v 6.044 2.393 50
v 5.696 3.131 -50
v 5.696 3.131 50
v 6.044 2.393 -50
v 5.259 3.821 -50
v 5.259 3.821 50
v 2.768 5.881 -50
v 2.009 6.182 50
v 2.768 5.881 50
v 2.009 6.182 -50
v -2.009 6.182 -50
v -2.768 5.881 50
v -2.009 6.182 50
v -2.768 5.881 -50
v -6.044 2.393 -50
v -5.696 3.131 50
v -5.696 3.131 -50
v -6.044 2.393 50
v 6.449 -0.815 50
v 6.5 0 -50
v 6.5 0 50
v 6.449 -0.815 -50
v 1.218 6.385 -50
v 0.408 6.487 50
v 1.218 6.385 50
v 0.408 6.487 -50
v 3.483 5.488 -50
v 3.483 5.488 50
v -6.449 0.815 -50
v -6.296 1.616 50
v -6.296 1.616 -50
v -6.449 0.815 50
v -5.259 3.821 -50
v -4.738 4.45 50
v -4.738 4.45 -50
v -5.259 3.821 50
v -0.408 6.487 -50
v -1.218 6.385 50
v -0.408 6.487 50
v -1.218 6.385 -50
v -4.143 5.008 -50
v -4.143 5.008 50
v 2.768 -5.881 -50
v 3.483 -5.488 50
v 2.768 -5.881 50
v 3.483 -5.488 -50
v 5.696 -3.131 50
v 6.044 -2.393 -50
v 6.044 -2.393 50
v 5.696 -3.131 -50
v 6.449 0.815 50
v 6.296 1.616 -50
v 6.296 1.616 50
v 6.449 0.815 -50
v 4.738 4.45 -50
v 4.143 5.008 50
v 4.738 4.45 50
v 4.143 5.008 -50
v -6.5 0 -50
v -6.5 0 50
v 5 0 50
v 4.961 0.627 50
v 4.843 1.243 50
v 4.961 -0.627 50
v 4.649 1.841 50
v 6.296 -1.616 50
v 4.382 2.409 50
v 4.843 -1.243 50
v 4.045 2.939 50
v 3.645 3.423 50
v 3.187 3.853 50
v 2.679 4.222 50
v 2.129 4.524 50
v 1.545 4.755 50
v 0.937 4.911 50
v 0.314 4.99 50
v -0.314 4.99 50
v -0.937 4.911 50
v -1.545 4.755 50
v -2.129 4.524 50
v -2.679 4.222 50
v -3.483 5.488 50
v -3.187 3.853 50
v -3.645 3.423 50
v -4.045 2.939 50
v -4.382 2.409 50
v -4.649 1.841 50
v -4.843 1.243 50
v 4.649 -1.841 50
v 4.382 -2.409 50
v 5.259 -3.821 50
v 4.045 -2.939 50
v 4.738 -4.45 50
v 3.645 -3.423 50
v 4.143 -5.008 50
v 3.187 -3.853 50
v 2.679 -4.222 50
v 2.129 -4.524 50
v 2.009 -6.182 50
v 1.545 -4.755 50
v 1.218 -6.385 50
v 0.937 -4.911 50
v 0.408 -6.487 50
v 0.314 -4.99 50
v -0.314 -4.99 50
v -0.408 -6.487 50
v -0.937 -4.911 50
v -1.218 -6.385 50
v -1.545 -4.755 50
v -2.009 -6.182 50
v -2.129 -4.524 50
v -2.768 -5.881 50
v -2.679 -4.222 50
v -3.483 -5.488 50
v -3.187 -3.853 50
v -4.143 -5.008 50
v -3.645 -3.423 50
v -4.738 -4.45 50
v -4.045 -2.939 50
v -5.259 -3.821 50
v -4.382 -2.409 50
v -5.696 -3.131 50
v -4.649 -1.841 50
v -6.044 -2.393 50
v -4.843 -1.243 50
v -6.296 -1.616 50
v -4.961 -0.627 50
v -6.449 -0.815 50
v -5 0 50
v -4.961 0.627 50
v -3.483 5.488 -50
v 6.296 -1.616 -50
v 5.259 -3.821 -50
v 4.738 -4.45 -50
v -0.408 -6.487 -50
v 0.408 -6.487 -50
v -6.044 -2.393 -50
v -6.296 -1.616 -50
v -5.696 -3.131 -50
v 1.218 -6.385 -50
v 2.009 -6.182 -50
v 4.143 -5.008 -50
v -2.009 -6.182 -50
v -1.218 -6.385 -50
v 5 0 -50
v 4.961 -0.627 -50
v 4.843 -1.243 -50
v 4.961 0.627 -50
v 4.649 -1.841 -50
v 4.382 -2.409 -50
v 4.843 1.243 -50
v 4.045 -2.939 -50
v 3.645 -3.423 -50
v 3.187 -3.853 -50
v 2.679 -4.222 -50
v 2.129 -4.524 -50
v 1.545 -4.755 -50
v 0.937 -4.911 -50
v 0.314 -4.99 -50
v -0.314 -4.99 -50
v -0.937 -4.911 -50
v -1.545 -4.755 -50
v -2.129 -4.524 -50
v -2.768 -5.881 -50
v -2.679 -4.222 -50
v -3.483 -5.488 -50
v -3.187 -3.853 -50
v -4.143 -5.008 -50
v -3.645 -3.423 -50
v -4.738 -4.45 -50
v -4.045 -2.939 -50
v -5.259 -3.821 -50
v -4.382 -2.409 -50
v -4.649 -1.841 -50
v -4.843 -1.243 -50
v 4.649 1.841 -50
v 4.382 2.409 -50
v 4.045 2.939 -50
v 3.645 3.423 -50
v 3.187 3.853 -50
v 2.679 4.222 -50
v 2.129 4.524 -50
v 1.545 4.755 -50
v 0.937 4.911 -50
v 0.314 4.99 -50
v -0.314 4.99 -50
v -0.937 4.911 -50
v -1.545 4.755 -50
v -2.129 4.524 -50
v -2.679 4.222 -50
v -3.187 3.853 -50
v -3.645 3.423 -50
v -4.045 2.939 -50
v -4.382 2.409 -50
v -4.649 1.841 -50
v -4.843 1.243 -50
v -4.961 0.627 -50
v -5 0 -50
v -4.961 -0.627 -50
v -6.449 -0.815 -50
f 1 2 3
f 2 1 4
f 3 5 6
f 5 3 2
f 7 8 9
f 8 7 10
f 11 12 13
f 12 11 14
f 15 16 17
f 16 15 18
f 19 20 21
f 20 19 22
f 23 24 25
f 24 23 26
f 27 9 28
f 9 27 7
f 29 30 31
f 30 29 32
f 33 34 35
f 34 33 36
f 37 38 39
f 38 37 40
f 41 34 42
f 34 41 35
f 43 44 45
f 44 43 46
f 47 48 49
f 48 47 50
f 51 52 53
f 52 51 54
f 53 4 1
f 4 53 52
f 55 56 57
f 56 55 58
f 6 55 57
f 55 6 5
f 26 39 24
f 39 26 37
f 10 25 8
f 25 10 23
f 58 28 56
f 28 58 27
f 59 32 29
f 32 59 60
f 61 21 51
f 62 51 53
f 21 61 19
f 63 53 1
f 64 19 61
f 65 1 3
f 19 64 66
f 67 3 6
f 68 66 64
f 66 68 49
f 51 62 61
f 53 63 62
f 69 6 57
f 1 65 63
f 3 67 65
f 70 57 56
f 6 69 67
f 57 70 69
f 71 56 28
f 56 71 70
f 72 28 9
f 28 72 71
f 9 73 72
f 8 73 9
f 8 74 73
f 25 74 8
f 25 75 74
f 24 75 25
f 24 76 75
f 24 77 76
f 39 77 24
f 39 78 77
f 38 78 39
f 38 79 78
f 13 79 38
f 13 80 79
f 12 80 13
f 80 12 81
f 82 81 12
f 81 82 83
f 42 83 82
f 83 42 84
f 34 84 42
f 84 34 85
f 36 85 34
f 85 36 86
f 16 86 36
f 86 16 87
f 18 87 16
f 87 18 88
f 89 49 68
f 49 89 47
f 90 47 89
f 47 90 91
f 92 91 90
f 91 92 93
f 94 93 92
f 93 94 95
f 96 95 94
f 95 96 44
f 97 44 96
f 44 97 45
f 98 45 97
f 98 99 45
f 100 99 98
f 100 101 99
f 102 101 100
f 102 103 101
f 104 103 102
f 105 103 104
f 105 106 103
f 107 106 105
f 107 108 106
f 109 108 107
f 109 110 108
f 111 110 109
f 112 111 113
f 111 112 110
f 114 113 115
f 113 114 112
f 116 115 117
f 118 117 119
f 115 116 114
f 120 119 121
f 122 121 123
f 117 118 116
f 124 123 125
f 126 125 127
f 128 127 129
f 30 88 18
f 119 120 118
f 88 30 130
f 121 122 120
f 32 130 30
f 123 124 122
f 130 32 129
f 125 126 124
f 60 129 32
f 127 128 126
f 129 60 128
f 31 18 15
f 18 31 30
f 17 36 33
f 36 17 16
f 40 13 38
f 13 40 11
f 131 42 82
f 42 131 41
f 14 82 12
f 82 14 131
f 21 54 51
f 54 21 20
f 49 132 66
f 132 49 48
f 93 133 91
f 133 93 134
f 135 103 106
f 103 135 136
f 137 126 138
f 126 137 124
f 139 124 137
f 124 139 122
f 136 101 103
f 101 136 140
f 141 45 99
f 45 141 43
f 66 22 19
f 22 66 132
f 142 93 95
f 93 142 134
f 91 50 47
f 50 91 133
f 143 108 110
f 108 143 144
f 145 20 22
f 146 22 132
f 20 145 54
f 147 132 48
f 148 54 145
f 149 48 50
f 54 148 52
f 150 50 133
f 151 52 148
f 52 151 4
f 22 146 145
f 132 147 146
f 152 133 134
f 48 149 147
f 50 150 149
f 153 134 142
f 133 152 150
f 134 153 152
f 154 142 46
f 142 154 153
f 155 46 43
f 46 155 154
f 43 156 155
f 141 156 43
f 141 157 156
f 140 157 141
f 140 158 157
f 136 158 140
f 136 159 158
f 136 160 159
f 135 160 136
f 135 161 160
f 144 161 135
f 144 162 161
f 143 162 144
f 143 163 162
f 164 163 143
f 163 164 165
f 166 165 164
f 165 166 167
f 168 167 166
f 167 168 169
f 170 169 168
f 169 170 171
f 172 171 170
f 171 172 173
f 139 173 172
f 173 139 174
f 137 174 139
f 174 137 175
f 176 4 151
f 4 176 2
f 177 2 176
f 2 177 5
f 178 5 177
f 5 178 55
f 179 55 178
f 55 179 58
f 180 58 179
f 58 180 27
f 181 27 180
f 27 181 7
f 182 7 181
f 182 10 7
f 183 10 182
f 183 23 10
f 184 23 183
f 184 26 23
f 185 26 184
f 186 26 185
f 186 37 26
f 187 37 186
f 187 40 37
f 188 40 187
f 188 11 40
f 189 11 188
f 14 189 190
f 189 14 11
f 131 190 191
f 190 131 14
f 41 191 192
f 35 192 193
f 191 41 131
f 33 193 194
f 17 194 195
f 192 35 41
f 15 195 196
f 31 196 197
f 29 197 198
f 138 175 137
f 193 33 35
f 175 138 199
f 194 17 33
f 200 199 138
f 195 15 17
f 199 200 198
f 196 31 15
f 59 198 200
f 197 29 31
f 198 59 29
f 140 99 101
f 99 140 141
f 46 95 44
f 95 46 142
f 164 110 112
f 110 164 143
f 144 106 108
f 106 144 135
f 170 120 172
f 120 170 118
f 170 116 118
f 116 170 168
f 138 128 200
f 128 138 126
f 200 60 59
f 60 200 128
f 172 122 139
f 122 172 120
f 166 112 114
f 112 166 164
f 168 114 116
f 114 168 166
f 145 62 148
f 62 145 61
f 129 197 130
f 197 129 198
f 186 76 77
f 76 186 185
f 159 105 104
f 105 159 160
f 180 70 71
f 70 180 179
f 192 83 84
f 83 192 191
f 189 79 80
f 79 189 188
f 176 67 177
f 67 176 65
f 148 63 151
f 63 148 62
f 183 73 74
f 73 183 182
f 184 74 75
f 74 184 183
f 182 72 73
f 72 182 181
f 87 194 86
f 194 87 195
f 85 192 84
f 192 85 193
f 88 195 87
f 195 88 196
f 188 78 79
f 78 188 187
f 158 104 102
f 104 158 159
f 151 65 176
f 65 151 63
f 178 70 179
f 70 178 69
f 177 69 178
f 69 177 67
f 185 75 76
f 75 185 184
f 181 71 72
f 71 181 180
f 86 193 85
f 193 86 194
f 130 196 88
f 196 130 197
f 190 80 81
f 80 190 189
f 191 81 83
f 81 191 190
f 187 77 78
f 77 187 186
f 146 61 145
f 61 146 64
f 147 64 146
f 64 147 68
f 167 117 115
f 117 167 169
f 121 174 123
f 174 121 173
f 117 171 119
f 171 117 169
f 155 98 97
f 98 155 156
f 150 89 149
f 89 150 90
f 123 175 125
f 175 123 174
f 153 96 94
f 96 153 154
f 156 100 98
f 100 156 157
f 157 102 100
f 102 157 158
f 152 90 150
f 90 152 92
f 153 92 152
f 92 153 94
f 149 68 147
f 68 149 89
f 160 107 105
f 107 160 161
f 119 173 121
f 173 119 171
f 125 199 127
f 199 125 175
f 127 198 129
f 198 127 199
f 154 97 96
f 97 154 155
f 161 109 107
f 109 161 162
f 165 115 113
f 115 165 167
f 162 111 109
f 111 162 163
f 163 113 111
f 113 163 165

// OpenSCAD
$fn = 50;


difference() {
	union() {
		translate(v = [0, 0, -50.0000000000]) {
			cylinder(h = 100, r = 6.5000000000);
		}
	}
	union() {
		translate(v = [0, 0, -100.0000000000]) {
			cylinder(h = 200, r = 5);
		}
	}
}
